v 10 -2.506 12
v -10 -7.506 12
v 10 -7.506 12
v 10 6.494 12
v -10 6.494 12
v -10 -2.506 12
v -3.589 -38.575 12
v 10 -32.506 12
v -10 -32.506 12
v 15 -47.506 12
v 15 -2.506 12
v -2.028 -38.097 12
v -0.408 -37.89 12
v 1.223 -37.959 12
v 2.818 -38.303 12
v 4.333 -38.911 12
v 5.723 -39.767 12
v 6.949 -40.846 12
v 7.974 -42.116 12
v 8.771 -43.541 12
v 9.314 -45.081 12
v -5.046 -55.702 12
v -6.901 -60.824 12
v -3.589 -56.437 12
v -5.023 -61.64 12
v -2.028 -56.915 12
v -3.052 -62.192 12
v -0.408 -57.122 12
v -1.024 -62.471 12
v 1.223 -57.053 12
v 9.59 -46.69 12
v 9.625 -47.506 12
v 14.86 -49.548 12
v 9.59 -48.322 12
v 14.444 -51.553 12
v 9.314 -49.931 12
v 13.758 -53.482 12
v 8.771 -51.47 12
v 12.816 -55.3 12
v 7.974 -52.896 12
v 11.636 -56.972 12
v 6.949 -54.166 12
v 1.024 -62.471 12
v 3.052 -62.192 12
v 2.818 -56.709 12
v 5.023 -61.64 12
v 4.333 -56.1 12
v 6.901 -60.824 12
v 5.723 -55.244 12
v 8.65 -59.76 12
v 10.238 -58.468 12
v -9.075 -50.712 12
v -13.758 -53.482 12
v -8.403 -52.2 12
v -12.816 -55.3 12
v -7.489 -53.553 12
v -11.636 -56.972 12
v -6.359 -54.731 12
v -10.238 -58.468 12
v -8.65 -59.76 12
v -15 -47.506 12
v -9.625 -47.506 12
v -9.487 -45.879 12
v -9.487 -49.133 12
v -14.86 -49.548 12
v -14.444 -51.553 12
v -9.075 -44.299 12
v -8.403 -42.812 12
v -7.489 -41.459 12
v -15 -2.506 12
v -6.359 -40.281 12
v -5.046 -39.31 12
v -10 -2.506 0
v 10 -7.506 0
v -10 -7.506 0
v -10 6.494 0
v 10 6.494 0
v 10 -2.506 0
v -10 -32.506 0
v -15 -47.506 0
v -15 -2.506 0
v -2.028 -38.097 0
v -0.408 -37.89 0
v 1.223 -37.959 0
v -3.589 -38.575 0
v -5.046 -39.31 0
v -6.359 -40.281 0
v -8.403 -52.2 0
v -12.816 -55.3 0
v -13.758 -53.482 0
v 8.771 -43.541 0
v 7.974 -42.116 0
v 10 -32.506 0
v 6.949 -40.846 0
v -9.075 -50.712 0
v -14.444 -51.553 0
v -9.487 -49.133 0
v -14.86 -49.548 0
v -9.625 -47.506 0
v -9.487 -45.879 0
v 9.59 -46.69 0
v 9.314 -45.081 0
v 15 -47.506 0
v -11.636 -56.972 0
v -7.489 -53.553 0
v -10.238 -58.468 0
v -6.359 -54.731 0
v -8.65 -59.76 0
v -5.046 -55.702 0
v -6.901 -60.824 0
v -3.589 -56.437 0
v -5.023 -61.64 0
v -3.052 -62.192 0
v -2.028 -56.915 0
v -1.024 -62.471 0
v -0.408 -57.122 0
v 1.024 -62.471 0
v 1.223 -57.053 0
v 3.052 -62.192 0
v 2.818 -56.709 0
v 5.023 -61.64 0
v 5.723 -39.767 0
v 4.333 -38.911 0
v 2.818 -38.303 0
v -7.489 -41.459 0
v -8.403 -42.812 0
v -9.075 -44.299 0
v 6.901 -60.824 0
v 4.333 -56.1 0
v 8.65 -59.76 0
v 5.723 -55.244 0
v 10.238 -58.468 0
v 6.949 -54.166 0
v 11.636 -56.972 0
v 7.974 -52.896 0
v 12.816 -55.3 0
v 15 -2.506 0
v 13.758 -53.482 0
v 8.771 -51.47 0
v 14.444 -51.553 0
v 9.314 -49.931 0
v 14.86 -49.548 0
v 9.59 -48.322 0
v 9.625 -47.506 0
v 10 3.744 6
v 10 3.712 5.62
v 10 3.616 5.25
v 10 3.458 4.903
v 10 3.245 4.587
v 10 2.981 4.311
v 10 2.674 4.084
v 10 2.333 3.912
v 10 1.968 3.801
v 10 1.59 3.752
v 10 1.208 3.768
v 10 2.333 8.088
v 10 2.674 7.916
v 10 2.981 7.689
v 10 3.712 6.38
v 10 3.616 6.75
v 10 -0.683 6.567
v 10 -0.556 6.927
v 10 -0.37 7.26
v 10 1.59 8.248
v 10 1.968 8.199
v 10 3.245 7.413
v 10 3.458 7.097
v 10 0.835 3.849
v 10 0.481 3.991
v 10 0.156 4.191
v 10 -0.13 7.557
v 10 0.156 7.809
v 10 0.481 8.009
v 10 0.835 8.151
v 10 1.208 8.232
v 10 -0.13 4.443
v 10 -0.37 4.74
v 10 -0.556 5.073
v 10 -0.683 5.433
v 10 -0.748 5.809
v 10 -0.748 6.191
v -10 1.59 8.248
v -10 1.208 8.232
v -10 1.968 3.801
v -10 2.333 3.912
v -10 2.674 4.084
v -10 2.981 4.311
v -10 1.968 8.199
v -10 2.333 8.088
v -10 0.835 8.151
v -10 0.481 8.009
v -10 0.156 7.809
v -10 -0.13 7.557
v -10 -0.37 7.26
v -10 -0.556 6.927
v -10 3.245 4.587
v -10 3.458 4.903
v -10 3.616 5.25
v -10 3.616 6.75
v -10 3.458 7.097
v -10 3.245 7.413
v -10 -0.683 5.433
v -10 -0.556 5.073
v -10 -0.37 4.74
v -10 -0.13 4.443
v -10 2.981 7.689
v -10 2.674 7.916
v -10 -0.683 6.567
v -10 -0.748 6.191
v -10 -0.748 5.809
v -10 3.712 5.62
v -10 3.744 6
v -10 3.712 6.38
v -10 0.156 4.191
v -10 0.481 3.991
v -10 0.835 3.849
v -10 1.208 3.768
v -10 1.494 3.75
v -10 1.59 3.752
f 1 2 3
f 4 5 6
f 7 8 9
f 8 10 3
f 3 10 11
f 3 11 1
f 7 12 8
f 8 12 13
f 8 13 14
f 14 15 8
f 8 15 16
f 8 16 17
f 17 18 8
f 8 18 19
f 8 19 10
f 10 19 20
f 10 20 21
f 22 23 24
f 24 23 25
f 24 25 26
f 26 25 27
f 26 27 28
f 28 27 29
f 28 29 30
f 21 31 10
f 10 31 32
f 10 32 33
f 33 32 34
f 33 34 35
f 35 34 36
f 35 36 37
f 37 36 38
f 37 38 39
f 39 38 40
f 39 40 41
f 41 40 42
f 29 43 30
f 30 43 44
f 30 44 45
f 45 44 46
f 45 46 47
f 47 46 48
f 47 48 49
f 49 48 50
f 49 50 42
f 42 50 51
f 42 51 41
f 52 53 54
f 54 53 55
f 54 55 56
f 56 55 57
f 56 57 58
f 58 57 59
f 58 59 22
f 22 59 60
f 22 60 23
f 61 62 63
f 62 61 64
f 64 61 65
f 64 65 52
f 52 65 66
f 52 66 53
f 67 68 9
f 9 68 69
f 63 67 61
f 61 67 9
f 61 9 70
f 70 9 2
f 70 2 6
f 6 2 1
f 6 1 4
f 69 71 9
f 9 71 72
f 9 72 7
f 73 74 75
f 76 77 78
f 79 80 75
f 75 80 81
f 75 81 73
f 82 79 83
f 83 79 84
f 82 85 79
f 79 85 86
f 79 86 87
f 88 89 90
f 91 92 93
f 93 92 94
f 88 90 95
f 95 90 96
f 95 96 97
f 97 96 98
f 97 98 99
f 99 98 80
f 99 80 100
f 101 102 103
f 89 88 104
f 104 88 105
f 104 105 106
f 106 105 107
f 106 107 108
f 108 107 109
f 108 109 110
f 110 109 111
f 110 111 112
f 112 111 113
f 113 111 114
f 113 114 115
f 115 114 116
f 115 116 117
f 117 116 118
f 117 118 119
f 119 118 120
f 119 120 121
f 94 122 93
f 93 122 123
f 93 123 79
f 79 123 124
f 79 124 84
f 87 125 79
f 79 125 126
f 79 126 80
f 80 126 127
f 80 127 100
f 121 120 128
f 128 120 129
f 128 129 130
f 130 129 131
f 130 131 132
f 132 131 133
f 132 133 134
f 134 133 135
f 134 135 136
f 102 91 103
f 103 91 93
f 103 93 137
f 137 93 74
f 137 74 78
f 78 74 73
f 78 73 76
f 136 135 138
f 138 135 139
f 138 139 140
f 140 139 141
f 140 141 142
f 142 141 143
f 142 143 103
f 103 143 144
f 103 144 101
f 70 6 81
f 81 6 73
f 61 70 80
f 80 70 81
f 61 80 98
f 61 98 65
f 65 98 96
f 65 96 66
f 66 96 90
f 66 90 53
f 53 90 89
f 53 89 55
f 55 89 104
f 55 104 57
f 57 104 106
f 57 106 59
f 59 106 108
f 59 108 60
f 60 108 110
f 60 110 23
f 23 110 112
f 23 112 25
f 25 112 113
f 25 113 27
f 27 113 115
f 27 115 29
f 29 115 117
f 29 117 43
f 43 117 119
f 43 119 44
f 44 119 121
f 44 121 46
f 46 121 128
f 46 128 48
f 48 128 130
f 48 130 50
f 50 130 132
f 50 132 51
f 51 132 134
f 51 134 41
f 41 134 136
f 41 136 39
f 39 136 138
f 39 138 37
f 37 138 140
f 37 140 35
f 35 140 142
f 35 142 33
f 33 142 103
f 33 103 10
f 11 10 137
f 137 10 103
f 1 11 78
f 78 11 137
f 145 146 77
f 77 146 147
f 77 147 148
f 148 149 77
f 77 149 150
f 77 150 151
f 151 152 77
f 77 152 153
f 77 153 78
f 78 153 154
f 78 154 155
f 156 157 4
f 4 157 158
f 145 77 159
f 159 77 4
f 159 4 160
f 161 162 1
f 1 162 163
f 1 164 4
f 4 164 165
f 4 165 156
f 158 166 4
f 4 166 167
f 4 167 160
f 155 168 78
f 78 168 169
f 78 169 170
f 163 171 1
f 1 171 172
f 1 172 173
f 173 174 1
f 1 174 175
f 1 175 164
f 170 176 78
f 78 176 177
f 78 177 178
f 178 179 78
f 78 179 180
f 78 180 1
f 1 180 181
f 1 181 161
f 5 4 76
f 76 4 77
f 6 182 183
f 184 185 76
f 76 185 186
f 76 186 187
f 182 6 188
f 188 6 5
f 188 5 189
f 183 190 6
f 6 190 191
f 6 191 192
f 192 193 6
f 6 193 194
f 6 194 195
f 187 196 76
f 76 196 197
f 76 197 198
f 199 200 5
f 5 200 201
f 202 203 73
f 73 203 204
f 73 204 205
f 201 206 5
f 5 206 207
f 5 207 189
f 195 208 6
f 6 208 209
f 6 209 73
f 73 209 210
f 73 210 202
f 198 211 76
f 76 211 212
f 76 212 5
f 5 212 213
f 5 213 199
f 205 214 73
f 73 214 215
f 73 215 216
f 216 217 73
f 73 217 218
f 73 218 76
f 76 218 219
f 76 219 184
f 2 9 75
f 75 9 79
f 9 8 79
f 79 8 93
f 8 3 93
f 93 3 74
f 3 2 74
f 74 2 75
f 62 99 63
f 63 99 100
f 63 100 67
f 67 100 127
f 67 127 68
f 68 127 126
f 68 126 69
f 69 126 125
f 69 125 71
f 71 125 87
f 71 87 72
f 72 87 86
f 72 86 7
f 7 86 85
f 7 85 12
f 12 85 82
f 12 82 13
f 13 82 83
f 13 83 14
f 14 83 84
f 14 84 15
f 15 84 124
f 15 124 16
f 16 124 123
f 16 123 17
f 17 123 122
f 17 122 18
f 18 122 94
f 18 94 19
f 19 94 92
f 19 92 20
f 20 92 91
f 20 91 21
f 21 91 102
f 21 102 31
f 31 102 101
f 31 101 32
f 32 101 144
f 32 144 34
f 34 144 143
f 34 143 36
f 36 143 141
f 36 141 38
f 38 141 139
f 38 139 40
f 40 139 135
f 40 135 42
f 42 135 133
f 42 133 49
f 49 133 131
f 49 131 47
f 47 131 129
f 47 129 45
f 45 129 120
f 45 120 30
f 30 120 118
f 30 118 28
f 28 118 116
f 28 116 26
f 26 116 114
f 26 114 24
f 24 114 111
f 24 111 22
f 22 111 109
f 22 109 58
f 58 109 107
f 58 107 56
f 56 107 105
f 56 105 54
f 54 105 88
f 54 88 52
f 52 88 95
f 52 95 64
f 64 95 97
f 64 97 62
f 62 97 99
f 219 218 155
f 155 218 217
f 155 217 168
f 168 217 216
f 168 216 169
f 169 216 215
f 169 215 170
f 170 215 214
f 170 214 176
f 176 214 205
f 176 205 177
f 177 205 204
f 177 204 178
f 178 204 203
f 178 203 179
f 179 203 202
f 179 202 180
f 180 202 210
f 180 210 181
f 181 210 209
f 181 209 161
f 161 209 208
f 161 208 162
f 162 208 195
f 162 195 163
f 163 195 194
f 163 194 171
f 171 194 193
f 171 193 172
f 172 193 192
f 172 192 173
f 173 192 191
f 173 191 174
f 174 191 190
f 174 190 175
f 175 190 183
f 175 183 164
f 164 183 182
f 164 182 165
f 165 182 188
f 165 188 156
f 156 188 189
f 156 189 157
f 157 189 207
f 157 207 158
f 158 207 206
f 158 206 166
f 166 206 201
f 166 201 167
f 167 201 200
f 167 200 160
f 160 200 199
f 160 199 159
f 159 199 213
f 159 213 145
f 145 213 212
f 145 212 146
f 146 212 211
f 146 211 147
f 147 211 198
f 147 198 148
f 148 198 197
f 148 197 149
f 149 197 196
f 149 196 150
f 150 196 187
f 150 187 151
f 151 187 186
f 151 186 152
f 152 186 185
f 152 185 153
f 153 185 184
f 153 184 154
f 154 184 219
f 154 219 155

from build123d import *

# Parameters (mm, degrees)
SKETCH1_R           = 9.625
SKETCH1_W           = 20
SKETCH1_H           = 25
BOSS_EXTRUDE1_DEPTH = 12
SKETCH2_R           = 2.25
CUT_EXTRUDE1_DEPTH  = 69.381198132


with BuildPart() as part:
    # Sketch1 → Boss-Extrude1 (new body)
    with BuildSketch(Plane.XY):
        with BuildLine():
            Line((-10, -2.505905785), (-10, 6.494094215))
            Line((-10, 6.494094215), (10, 6.494094215))
            Line((10, 6.494094215), (10, -2.505905785))
            Line((10, -2.505905785), (15, -2.505905785))
            Line((15, -2.505905785), (15, -47.505905785))
            ThreePointArc((15, -47.505905785), (0, -62.505905785), (-15, -47.505905785))
            Line((-15, -47.505905785), (-15, -2.505905785))
            Line((-15, -2.505905785), (-10, -2.505905785))
        make_face()
        with Locations((0, -47.505905785)):
            Circle(SKETCH1_R, mode=Mode.SUBTRACT)
        with Locations((0, -20.005905785)):
            Rectangle(SKETCH1_W, SKETCH1_H, mode=Mode.SUBTRACT)
    extrude(amount=BOSS_EXTRUDE1_DEPTH)

    # Sketch2 → Cut-Extrude1 (cut, through all)
    with BuildSketch(Plane(origin=(10, 0, 0), x_dir=(0, 0, -1), z_dir=(1, 0, 0))):
        with Locations(Location((-6, 1.494094215, 0), (0, 0, 90))):
            Circle(SKETCH2_R)
    extrude(amount=-CUT_EXTRUDE1_DEPTH, mode=Mode.SUBTRACT)


solid = part.part
